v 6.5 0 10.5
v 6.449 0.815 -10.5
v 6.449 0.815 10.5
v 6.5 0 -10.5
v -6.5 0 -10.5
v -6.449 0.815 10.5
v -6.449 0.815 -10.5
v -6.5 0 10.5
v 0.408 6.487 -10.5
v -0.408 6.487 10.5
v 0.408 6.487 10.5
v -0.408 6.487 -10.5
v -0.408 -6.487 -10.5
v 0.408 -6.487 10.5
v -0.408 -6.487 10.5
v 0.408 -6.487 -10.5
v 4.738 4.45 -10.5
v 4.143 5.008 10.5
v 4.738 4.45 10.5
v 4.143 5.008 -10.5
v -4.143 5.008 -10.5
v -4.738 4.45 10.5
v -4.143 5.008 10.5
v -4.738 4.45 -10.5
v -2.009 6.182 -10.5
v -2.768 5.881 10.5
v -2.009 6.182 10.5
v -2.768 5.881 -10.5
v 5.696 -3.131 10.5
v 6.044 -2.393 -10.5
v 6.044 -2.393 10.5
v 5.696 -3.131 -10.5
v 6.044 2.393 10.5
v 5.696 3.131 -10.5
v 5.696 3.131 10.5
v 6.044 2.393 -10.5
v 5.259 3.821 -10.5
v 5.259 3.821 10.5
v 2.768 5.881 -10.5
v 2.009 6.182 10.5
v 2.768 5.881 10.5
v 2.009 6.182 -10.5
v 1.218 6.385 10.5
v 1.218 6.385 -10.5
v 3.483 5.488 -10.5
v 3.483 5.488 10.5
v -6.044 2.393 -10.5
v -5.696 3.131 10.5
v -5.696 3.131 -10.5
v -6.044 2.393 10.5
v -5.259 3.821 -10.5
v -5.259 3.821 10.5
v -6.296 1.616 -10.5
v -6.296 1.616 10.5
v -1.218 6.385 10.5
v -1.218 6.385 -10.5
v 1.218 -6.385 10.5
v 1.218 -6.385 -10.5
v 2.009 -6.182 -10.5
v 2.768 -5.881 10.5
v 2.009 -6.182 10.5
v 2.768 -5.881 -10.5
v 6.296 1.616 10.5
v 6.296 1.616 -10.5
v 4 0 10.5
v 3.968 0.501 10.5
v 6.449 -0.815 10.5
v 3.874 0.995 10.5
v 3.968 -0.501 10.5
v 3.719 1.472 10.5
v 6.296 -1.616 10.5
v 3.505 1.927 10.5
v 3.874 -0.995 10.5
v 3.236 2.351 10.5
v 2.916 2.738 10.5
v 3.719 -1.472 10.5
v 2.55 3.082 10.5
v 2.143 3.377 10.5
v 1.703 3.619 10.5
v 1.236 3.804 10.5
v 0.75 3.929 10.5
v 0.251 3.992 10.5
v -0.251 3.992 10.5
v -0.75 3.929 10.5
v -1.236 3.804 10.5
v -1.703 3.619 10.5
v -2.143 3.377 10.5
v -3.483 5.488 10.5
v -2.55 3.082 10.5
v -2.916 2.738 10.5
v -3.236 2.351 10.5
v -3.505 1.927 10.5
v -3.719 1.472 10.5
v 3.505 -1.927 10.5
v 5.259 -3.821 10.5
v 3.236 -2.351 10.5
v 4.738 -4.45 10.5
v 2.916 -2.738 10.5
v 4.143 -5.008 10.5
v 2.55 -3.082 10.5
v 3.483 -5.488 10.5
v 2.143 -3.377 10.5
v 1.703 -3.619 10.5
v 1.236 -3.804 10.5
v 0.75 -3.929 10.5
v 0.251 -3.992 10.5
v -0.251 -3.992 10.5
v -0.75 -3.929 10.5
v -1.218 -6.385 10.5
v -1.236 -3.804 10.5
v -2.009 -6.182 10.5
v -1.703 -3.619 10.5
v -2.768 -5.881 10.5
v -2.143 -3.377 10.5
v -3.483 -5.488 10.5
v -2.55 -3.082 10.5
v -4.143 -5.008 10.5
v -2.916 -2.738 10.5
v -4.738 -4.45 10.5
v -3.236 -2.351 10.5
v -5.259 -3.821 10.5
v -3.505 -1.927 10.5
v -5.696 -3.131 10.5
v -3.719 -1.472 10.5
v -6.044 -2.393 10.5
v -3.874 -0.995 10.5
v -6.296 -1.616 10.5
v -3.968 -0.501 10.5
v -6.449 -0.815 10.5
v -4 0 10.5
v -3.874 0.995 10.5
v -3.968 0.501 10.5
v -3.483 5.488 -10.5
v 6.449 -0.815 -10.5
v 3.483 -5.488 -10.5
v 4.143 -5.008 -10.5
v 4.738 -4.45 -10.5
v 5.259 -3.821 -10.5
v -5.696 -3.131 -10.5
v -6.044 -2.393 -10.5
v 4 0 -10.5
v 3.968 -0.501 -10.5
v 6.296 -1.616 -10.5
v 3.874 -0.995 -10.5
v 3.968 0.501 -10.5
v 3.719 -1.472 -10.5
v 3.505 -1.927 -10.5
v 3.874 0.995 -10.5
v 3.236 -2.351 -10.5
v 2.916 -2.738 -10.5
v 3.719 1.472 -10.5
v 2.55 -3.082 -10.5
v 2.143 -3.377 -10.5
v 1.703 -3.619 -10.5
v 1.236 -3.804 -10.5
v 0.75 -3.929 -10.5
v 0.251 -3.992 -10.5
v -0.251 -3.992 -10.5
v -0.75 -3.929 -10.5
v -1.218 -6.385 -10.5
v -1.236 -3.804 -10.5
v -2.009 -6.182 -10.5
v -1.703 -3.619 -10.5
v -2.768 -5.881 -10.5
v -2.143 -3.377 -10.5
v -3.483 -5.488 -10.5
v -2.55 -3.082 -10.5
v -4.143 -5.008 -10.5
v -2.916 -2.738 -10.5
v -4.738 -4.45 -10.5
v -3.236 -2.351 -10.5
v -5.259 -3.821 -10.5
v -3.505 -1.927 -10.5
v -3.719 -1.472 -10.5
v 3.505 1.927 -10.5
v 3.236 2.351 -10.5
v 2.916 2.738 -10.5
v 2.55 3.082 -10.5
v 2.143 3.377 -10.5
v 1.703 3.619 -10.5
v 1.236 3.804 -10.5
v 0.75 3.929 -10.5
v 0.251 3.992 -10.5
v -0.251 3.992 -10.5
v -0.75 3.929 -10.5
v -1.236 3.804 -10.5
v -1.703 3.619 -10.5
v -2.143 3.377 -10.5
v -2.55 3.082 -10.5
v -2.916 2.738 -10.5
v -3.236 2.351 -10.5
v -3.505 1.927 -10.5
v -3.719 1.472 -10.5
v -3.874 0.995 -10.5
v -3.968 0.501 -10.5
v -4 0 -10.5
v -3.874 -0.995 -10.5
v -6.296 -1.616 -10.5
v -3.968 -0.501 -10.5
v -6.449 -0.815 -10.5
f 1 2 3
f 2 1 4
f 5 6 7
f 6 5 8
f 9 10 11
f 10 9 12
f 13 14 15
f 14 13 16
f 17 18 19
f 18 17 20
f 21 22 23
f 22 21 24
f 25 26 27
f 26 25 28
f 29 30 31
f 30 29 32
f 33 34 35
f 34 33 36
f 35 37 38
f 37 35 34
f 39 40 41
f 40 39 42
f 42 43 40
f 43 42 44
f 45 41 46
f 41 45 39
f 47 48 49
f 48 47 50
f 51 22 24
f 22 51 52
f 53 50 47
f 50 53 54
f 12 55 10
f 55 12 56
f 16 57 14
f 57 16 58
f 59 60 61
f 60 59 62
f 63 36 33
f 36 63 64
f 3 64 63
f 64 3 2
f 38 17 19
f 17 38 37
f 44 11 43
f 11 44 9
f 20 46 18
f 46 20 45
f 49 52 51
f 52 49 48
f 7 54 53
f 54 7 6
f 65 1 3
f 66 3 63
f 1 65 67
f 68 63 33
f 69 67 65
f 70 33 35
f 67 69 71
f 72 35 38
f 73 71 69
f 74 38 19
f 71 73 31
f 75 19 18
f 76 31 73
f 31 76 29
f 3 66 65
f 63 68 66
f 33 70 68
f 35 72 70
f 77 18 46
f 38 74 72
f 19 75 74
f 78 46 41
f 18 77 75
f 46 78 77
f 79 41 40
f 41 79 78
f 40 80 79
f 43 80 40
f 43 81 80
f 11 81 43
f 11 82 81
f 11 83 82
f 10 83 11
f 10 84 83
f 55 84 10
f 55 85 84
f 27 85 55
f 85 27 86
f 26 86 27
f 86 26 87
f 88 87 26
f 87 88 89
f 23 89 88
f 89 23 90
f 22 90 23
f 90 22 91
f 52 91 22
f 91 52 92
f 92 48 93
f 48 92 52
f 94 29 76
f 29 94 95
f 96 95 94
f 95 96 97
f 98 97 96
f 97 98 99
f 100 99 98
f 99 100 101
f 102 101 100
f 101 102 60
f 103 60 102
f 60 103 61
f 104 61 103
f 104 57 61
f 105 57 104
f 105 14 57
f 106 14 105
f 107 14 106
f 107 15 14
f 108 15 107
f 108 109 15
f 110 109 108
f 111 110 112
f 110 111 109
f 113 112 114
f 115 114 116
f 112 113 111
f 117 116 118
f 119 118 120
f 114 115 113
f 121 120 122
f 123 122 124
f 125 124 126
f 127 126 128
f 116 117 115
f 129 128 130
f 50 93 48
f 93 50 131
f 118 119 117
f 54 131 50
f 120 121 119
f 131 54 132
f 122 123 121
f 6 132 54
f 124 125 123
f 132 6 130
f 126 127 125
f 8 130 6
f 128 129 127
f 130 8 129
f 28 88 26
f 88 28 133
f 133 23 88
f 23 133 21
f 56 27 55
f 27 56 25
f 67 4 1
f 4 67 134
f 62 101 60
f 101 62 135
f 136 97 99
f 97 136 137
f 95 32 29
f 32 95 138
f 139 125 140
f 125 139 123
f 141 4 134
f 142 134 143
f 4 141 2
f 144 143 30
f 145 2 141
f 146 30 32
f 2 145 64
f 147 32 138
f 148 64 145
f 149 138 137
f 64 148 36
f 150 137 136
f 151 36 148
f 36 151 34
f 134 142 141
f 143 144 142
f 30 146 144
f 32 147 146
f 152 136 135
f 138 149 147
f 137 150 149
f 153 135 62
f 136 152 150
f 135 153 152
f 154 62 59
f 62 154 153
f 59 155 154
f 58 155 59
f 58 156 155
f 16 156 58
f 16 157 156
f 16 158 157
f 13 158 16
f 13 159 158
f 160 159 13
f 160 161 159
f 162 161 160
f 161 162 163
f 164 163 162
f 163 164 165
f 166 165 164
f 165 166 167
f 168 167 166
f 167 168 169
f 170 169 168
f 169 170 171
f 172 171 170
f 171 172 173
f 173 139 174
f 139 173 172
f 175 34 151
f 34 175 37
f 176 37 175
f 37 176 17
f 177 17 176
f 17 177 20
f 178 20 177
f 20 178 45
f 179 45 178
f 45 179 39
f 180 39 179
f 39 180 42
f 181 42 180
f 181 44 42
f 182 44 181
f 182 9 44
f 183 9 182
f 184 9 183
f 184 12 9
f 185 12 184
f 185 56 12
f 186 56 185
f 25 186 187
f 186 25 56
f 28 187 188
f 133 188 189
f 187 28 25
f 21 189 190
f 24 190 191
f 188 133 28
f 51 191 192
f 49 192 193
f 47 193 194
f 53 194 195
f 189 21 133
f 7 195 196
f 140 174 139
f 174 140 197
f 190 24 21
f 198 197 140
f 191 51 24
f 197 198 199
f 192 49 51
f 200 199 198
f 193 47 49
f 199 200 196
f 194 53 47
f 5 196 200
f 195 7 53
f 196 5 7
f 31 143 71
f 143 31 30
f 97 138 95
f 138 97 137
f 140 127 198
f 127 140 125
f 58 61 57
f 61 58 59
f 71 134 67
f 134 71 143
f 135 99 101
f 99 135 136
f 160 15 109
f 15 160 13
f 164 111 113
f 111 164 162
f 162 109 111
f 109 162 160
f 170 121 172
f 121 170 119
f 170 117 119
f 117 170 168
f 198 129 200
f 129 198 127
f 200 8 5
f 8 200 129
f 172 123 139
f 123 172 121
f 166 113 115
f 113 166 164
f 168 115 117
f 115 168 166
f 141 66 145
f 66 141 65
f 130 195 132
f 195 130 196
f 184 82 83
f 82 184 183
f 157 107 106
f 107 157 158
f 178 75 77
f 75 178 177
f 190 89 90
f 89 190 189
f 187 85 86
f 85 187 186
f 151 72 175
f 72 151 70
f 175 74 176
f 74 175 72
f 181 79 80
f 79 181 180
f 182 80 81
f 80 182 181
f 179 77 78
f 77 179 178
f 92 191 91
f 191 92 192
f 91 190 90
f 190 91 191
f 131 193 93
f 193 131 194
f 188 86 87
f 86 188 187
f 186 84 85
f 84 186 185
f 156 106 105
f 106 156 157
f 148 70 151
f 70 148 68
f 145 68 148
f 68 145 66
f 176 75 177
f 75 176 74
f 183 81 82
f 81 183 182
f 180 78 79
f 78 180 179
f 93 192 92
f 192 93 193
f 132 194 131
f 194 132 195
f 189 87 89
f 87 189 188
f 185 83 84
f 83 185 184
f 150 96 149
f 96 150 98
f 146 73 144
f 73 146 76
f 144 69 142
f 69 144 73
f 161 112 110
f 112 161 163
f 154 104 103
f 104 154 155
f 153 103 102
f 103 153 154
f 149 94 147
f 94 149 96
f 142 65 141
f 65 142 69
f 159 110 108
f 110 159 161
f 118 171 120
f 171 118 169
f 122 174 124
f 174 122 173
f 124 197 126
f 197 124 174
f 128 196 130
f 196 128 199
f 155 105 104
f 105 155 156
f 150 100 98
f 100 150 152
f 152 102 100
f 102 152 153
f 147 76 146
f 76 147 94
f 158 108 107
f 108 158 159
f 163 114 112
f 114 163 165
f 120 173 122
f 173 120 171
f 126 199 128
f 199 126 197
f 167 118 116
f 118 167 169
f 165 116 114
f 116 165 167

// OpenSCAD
$fn = 50;


difference() {
	union() {
		translate(v = [0, 0, -10.5000000000]) {
			cylinder(h = 21, r = 6.5000000000);
		}
	}
	union() {
		translate(v = [0, 0, -100.0000000000]) {
			cylinder(h = 200, r = 4);
		}
	}
}
